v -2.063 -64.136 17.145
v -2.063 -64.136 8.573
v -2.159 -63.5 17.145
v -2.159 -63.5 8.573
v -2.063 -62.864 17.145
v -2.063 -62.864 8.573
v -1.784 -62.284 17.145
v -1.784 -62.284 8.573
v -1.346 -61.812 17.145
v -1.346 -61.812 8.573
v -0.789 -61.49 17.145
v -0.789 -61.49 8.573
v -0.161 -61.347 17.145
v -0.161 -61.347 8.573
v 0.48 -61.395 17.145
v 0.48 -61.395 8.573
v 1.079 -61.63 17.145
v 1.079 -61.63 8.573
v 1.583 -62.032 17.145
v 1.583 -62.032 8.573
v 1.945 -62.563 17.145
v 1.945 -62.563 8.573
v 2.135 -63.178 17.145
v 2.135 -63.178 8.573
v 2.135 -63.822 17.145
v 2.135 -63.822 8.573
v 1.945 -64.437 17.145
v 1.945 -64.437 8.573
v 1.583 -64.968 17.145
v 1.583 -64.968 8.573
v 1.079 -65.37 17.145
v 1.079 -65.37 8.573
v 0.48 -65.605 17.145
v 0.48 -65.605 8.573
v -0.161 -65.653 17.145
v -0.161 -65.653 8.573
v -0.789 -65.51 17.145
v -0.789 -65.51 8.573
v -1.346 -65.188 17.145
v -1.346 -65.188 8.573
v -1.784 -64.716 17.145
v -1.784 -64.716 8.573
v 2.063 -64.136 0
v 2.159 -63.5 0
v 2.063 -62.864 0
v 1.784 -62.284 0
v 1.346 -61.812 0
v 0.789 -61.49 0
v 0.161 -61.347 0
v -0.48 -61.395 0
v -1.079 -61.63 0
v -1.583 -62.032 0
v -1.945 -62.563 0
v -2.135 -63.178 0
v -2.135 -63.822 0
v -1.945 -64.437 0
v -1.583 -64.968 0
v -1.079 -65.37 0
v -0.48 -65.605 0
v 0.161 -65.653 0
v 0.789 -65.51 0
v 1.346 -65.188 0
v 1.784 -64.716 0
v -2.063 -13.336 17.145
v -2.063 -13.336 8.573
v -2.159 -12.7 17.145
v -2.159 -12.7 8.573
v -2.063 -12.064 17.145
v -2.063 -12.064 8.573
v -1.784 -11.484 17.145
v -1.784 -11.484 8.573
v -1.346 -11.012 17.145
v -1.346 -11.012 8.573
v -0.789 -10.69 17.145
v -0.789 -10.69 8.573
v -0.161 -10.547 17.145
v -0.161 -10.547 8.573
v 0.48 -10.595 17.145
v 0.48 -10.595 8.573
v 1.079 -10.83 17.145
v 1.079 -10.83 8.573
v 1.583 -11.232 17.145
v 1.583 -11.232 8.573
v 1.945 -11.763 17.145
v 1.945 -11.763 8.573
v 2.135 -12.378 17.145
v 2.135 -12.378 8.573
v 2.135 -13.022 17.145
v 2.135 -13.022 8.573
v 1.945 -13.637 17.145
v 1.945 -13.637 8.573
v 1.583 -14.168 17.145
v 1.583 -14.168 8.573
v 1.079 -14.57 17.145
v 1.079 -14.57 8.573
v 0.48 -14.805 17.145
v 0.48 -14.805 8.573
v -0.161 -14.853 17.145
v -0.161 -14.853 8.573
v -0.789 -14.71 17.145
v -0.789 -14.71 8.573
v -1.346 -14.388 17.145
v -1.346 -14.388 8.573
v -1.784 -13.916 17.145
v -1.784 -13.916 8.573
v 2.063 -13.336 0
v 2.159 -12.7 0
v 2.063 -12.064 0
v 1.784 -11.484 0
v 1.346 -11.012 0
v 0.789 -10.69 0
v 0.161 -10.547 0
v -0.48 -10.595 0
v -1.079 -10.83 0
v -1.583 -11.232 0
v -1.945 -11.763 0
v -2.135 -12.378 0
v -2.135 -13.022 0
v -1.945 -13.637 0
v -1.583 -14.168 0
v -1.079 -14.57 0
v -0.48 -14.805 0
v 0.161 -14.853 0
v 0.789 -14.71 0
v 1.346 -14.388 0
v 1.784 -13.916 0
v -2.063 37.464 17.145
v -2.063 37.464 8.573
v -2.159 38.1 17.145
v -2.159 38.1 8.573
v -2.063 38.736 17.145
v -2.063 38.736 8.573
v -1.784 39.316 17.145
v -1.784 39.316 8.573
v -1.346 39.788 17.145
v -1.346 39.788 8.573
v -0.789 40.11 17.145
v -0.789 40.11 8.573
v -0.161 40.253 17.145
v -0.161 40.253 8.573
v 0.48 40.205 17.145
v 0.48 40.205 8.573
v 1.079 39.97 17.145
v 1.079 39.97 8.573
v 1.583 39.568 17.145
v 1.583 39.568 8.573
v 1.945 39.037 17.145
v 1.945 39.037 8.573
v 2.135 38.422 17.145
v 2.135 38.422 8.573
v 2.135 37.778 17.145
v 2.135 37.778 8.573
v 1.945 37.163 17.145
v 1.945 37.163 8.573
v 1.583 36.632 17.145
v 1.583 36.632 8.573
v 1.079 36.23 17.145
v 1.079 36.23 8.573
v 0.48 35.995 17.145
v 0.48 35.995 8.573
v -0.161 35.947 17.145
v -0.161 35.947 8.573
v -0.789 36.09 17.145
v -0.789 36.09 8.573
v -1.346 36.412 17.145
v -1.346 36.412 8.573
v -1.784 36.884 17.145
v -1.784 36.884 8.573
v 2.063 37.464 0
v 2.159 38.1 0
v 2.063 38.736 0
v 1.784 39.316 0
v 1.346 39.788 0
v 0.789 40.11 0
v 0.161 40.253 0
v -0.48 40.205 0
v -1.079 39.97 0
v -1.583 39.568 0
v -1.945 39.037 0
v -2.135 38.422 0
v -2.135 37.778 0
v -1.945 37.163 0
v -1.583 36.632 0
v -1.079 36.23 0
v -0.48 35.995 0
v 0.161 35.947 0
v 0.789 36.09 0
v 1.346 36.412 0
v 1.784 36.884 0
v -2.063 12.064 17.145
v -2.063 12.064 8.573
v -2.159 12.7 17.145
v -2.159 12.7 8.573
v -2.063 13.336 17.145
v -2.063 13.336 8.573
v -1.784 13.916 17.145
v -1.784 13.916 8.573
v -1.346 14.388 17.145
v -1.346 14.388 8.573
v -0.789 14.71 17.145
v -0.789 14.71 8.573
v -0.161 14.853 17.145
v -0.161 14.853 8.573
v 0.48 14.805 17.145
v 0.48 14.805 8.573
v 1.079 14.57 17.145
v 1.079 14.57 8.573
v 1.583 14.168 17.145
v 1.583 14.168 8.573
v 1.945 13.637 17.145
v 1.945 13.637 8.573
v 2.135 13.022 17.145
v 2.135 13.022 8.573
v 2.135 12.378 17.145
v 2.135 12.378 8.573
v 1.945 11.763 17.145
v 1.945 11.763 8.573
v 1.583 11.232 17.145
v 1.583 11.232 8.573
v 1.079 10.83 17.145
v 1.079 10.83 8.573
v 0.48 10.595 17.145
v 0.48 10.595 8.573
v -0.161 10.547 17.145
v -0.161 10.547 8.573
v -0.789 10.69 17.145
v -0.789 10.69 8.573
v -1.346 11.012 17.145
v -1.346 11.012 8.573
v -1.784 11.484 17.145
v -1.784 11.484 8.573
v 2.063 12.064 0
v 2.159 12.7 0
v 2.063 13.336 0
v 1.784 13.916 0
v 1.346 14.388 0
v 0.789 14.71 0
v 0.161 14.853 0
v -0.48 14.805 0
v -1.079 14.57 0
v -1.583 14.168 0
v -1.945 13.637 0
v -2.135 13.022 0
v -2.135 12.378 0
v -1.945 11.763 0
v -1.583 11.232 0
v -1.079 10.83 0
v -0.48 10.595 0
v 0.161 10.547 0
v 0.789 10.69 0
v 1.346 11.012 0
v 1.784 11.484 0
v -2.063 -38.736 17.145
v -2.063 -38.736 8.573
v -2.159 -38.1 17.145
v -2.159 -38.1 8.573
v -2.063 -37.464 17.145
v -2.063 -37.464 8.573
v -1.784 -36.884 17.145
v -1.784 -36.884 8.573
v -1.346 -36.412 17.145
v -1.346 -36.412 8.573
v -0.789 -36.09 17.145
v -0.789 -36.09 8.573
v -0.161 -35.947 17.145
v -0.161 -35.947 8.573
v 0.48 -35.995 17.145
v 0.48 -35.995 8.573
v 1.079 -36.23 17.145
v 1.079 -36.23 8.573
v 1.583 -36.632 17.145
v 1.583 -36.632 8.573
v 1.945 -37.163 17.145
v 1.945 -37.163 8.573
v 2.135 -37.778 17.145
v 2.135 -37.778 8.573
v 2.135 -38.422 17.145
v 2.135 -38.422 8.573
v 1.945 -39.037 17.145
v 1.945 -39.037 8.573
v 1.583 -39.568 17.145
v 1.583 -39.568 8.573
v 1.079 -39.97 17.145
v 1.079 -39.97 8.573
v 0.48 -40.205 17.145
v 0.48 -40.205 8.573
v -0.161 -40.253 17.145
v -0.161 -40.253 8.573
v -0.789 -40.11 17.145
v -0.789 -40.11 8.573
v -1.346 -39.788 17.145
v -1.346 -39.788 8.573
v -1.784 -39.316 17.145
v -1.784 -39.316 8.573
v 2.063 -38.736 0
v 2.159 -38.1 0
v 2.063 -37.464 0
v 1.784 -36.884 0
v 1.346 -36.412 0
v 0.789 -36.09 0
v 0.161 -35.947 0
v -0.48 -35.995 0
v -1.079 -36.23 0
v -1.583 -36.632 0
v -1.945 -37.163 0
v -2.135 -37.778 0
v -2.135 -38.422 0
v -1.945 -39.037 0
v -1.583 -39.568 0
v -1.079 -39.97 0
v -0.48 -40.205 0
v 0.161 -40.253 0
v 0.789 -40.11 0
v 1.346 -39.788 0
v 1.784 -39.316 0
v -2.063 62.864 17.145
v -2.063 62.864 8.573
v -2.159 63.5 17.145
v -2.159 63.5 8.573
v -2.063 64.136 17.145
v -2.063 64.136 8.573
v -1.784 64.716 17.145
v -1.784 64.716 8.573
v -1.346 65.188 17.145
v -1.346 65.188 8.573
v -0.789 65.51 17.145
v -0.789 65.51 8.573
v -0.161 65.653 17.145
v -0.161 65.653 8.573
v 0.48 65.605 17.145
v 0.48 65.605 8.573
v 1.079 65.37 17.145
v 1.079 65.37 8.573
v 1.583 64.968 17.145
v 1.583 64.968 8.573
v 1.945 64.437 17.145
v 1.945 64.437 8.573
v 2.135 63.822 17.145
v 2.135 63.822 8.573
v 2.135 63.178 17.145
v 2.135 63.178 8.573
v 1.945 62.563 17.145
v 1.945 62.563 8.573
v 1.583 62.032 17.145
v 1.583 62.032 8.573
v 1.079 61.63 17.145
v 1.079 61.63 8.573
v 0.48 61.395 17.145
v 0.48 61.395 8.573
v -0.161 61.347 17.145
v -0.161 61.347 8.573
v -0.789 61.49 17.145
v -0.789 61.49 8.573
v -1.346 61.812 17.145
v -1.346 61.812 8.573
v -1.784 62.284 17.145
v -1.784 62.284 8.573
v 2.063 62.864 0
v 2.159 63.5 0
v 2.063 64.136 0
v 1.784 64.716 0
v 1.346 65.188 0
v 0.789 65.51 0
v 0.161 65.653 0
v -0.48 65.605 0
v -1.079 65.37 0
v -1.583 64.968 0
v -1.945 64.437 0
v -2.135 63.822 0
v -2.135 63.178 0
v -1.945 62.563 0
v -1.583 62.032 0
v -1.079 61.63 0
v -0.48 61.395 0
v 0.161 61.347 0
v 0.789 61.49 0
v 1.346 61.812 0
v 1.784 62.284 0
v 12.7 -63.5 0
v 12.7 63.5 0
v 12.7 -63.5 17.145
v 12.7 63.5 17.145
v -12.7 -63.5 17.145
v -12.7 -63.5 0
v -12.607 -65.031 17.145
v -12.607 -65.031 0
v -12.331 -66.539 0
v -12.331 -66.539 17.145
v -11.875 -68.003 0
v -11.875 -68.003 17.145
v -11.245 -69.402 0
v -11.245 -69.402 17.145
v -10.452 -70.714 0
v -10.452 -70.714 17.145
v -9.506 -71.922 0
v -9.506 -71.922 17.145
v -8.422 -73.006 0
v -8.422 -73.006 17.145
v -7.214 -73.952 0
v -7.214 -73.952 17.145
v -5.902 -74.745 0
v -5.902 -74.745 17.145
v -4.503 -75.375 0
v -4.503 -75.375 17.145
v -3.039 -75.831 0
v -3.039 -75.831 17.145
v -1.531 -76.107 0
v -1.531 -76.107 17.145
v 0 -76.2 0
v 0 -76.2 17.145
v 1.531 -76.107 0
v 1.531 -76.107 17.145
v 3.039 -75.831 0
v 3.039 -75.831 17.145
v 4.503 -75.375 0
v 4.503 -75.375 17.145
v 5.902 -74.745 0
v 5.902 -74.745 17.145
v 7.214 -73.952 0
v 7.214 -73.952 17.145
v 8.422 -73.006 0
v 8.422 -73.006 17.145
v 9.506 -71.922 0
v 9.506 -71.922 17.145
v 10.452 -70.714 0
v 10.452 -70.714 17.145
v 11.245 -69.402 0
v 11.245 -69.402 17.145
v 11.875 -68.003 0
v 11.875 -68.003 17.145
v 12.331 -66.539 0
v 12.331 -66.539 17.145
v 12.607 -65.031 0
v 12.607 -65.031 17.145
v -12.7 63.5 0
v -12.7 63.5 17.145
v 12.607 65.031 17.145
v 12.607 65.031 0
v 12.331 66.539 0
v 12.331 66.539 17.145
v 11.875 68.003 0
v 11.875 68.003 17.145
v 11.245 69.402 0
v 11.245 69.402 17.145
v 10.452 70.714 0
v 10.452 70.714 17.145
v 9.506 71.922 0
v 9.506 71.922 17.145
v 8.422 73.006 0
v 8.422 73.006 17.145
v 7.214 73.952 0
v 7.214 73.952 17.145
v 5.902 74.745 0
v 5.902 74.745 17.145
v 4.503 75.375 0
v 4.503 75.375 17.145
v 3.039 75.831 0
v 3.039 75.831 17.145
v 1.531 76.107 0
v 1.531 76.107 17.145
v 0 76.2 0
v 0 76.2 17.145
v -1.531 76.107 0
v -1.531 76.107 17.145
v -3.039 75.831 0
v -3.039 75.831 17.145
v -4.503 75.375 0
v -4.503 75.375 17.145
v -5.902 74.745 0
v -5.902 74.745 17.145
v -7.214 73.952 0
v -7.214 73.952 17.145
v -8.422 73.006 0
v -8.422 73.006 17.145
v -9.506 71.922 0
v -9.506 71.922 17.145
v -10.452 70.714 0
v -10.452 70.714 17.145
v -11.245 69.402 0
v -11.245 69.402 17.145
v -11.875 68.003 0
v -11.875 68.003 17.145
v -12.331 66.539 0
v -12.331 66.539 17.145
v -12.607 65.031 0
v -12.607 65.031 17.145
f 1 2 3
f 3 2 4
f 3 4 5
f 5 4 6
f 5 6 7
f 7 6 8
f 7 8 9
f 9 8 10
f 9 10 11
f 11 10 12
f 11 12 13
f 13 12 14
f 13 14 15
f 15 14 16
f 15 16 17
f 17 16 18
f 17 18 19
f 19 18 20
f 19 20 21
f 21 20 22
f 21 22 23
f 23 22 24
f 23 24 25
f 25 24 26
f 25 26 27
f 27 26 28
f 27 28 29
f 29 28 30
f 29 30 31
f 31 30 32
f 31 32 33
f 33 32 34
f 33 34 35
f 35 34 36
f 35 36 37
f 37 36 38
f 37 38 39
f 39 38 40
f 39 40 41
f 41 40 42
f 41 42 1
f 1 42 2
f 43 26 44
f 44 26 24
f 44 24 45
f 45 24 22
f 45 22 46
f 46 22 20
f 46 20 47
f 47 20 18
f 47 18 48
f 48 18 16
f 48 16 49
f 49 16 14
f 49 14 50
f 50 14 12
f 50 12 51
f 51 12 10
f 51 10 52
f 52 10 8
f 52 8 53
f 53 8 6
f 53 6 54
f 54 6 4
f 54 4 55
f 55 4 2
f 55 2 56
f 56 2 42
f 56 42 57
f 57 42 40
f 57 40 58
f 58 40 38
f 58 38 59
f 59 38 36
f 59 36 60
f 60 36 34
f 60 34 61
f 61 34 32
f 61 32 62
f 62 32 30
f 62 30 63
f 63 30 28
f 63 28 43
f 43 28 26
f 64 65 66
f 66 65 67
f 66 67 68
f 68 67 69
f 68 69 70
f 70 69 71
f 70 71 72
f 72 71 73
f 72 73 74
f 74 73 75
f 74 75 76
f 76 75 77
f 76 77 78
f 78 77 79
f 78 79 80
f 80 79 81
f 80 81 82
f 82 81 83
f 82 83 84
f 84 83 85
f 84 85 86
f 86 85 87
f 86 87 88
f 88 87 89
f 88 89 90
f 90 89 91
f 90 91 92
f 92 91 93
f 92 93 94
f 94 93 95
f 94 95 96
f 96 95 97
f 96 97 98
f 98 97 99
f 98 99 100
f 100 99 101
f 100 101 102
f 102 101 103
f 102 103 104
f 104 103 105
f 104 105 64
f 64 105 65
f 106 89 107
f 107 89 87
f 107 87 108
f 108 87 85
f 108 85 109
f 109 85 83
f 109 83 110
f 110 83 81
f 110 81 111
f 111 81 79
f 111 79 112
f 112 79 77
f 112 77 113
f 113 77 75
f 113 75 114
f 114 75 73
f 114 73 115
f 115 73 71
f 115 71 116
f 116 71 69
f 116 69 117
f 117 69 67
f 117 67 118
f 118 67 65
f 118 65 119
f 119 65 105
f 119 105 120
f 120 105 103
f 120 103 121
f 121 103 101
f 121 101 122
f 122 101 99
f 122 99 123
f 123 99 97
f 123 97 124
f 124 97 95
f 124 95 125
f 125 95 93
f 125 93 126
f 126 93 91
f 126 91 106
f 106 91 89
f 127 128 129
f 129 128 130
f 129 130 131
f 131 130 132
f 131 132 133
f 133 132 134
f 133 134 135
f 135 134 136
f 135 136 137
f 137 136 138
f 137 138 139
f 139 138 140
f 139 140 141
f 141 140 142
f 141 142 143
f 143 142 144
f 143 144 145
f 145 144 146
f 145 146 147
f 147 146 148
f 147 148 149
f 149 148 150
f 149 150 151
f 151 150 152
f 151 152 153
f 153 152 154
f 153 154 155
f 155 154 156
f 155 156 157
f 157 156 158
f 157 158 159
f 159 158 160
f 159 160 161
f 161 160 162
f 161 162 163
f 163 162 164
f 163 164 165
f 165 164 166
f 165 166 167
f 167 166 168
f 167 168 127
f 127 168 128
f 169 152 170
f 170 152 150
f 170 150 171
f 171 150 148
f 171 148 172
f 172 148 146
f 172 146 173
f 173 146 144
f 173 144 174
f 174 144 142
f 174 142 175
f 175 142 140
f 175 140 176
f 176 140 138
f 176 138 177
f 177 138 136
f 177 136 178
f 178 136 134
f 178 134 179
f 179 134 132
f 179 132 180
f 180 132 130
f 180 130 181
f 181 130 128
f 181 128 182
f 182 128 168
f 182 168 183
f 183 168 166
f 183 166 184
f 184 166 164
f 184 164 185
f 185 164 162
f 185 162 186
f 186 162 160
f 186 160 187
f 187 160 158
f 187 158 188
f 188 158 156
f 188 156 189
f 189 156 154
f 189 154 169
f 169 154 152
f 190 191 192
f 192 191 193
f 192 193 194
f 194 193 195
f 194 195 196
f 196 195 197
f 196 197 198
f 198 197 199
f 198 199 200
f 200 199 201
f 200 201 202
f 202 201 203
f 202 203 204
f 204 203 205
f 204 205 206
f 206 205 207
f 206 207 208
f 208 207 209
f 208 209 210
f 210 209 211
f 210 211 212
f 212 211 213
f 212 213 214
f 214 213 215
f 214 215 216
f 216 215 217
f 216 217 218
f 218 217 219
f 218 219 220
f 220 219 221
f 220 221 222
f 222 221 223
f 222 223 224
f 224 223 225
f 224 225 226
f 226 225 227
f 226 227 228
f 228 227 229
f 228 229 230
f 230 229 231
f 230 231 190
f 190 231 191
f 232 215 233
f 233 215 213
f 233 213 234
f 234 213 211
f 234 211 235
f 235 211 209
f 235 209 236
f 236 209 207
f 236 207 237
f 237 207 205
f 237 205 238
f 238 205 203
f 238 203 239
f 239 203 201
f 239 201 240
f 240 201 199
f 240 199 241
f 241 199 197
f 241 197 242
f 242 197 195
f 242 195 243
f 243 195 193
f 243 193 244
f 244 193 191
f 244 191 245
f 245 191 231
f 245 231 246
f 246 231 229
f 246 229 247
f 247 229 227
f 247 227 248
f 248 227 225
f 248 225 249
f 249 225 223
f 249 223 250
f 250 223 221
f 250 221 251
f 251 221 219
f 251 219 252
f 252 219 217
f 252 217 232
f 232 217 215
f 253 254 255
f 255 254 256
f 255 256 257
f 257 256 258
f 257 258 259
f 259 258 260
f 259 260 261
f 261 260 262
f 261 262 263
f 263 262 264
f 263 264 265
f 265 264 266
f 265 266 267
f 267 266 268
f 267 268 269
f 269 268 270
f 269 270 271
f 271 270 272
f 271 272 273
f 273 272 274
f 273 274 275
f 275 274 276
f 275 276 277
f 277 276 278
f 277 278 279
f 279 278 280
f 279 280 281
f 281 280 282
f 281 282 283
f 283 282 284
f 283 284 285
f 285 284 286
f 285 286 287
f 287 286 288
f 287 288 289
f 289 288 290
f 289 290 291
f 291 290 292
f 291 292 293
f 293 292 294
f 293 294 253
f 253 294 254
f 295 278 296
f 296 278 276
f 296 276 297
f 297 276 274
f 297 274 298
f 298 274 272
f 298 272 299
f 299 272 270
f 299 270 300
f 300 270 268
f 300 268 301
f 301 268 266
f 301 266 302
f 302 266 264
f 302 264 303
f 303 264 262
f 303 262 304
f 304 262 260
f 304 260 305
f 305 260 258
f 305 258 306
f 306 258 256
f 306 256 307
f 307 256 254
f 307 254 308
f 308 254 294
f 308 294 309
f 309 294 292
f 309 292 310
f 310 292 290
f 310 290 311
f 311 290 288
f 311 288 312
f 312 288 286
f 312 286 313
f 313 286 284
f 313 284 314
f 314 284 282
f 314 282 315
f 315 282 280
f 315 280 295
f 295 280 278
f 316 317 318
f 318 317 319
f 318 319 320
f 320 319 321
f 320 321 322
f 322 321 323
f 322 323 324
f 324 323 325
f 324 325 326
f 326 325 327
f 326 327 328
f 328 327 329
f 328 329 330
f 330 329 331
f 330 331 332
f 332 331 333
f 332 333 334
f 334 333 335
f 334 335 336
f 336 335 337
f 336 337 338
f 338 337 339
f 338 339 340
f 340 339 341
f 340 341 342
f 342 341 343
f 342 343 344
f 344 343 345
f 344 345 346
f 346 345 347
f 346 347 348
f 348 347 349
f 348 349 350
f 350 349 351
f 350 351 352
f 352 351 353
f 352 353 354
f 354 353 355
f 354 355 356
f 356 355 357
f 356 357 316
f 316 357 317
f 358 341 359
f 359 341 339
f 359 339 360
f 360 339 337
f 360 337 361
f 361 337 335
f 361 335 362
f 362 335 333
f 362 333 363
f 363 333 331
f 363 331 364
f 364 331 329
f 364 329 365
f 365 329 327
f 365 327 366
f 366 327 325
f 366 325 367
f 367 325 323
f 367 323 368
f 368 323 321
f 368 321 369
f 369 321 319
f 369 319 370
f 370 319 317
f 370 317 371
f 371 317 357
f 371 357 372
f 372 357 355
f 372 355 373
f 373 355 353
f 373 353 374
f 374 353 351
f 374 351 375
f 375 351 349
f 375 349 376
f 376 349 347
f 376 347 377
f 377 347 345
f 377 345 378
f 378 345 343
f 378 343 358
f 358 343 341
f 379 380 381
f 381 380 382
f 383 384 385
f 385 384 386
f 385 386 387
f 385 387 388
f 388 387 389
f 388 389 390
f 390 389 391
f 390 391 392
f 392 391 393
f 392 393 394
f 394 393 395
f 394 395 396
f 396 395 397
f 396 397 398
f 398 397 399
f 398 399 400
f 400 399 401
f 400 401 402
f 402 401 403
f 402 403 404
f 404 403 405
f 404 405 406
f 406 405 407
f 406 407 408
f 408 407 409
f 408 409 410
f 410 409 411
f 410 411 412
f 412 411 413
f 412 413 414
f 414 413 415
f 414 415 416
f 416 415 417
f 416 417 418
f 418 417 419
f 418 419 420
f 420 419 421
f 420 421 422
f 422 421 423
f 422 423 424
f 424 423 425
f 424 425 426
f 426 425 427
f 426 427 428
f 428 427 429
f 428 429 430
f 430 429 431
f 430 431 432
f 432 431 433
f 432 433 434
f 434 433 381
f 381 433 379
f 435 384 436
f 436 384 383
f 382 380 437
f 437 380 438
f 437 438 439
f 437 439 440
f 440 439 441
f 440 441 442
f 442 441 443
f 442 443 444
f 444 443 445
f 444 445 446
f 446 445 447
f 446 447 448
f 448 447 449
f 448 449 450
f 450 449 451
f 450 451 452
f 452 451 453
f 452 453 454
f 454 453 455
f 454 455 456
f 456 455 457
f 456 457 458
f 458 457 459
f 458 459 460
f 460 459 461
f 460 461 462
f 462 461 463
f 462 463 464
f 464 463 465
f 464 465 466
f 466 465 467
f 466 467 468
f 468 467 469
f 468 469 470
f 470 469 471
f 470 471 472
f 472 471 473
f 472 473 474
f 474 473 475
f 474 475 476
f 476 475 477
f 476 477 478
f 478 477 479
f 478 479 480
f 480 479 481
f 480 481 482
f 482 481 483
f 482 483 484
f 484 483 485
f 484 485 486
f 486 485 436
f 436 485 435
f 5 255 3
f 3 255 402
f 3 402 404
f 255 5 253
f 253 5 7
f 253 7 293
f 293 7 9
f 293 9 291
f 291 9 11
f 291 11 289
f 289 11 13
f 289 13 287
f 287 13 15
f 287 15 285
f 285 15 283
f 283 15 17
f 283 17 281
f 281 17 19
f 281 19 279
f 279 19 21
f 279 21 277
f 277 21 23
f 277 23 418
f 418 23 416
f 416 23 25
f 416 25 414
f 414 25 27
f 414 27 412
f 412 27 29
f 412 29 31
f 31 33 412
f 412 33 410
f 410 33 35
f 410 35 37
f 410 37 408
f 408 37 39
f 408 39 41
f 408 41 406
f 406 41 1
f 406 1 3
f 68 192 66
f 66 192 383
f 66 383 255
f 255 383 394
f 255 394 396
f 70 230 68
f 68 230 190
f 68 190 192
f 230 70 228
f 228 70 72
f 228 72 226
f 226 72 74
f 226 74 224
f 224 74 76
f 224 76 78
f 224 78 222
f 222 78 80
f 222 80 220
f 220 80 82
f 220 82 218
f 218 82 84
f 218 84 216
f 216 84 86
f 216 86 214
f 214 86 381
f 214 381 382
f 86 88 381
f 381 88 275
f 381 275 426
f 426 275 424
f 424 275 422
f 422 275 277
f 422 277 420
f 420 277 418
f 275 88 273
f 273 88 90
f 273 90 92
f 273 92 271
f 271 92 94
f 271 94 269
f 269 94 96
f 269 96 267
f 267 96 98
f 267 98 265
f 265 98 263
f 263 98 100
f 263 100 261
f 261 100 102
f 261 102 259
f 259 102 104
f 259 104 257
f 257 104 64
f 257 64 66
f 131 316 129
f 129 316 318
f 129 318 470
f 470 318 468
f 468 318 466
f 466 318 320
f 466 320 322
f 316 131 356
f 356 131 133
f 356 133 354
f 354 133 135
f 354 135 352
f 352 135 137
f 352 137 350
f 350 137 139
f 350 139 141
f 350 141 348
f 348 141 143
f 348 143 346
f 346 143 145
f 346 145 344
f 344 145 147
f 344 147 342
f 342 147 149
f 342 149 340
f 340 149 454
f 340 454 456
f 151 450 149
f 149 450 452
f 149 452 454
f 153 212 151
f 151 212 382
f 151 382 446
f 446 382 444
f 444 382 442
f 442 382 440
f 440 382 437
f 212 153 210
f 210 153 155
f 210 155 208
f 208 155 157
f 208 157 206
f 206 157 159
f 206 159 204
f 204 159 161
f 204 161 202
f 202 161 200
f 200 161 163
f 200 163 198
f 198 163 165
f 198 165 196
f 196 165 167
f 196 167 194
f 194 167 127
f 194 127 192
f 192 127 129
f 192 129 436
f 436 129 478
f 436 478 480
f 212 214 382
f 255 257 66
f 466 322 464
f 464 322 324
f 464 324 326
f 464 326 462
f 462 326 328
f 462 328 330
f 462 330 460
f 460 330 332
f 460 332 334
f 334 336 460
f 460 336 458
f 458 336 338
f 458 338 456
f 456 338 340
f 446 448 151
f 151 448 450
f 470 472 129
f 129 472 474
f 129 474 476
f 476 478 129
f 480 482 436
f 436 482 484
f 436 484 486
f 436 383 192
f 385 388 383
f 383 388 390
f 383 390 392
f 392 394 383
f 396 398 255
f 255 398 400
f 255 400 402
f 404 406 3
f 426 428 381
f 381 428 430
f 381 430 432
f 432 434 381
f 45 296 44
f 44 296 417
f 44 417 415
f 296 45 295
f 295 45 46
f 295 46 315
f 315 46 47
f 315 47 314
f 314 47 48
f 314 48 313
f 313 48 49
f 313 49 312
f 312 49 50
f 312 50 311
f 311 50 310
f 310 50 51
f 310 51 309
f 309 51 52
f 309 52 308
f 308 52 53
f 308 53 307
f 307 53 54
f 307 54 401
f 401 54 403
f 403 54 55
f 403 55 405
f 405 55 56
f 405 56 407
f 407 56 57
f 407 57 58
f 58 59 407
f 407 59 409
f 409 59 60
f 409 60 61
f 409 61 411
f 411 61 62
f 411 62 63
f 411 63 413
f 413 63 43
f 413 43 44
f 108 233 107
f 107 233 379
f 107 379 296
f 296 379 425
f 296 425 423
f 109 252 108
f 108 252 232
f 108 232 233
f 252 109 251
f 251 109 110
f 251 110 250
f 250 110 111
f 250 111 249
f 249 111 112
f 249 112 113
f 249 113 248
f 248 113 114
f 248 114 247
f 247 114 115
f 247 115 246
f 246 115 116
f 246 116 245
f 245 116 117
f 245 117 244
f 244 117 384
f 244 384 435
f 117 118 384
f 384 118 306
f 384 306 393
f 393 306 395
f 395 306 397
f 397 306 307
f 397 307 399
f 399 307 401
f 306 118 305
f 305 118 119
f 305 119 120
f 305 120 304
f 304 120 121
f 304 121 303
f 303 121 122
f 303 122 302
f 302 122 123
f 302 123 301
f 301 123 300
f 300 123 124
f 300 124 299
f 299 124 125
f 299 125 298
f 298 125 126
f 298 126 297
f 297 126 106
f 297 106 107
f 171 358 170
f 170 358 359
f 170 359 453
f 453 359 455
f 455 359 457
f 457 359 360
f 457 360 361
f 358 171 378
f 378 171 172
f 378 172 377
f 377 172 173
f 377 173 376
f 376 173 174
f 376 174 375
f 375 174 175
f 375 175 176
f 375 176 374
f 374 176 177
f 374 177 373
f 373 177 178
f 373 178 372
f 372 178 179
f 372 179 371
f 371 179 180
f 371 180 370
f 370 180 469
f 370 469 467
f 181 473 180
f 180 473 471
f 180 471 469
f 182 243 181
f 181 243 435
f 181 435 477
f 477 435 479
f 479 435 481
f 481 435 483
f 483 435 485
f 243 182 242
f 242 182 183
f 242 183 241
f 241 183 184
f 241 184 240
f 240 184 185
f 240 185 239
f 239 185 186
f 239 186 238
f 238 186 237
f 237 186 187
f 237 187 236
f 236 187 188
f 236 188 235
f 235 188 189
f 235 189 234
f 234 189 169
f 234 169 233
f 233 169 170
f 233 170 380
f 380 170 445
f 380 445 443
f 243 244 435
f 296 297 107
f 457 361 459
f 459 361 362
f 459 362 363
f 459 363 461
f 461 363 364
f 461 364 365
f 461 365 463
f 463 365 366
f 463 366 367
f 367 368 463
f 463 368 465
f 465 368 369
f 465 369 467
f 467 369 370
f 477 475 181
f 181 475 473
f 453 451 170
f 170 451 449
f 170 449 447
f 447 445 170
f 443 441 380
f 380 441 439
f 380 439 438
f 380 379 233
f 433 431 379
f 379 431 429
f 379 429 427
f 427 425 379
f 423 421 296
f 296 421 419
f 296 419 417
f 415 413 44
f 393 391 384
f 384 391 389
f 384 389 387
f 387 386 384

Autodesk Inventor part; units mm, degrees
ref_plane "YZ Plane" through (0, 0, 0) normal (1, 0, 0) x (0, 1, 0)
ref_plane "XZ Plane" through (0, 0, 0) normal (0, 1, 0) x (-1, 0, 0)
ref_plane "XY Plane" through (0, 0, 0) normal (0, 0, 1) x (1, 0, 0)
sketch "Sketch1" plane through (0, 0, 0) normal (0, 0, 1) x (1, 0, 0)
  line L0 (0, -63.5) -> (0, 63.5) construction
  line L1 (12.7, -63.5) -> (12.7, 63.5)
  line L2 (-12.7, 63.5) -> (-12.7, -63.5)
  arc A0 (-12.7, -63.5) -> (12.7, -63.5) centre (0, -63.5) ccw
  arc A1 (12.7, 63.5) -> (-12.7, 63.5) centre (0, 63.5) ccw
  point P0 (0, 0)
  point P1 (0, 38.1)
  point P2 (0, 12.7)
  point P3 (0, -12.7)
  point P4 (0, -38.1)
  dimension "d0" = 63.5
  dimension "d1" = 25.4
  dimension "d2" = 25.4
  dimension "d3" = 25.4
  dimension "d4" = 25.4
  dimension "d5" = 25.4
extrude "Extrusion1" add sketch "Sketch1" along normal blind 17.145
hole "Hole1" at (0, 38.1, 0) at (0, 12.7, 0) at (0, -12.7, 0) at (0, -38.1, 0) at (0, -63.5, 0) at (0, 63.5, 0) direction (0, 0, 1) diameter 4.318 end through all
properties part number "Motor Bracket Seperator" material "PET Plastic"
